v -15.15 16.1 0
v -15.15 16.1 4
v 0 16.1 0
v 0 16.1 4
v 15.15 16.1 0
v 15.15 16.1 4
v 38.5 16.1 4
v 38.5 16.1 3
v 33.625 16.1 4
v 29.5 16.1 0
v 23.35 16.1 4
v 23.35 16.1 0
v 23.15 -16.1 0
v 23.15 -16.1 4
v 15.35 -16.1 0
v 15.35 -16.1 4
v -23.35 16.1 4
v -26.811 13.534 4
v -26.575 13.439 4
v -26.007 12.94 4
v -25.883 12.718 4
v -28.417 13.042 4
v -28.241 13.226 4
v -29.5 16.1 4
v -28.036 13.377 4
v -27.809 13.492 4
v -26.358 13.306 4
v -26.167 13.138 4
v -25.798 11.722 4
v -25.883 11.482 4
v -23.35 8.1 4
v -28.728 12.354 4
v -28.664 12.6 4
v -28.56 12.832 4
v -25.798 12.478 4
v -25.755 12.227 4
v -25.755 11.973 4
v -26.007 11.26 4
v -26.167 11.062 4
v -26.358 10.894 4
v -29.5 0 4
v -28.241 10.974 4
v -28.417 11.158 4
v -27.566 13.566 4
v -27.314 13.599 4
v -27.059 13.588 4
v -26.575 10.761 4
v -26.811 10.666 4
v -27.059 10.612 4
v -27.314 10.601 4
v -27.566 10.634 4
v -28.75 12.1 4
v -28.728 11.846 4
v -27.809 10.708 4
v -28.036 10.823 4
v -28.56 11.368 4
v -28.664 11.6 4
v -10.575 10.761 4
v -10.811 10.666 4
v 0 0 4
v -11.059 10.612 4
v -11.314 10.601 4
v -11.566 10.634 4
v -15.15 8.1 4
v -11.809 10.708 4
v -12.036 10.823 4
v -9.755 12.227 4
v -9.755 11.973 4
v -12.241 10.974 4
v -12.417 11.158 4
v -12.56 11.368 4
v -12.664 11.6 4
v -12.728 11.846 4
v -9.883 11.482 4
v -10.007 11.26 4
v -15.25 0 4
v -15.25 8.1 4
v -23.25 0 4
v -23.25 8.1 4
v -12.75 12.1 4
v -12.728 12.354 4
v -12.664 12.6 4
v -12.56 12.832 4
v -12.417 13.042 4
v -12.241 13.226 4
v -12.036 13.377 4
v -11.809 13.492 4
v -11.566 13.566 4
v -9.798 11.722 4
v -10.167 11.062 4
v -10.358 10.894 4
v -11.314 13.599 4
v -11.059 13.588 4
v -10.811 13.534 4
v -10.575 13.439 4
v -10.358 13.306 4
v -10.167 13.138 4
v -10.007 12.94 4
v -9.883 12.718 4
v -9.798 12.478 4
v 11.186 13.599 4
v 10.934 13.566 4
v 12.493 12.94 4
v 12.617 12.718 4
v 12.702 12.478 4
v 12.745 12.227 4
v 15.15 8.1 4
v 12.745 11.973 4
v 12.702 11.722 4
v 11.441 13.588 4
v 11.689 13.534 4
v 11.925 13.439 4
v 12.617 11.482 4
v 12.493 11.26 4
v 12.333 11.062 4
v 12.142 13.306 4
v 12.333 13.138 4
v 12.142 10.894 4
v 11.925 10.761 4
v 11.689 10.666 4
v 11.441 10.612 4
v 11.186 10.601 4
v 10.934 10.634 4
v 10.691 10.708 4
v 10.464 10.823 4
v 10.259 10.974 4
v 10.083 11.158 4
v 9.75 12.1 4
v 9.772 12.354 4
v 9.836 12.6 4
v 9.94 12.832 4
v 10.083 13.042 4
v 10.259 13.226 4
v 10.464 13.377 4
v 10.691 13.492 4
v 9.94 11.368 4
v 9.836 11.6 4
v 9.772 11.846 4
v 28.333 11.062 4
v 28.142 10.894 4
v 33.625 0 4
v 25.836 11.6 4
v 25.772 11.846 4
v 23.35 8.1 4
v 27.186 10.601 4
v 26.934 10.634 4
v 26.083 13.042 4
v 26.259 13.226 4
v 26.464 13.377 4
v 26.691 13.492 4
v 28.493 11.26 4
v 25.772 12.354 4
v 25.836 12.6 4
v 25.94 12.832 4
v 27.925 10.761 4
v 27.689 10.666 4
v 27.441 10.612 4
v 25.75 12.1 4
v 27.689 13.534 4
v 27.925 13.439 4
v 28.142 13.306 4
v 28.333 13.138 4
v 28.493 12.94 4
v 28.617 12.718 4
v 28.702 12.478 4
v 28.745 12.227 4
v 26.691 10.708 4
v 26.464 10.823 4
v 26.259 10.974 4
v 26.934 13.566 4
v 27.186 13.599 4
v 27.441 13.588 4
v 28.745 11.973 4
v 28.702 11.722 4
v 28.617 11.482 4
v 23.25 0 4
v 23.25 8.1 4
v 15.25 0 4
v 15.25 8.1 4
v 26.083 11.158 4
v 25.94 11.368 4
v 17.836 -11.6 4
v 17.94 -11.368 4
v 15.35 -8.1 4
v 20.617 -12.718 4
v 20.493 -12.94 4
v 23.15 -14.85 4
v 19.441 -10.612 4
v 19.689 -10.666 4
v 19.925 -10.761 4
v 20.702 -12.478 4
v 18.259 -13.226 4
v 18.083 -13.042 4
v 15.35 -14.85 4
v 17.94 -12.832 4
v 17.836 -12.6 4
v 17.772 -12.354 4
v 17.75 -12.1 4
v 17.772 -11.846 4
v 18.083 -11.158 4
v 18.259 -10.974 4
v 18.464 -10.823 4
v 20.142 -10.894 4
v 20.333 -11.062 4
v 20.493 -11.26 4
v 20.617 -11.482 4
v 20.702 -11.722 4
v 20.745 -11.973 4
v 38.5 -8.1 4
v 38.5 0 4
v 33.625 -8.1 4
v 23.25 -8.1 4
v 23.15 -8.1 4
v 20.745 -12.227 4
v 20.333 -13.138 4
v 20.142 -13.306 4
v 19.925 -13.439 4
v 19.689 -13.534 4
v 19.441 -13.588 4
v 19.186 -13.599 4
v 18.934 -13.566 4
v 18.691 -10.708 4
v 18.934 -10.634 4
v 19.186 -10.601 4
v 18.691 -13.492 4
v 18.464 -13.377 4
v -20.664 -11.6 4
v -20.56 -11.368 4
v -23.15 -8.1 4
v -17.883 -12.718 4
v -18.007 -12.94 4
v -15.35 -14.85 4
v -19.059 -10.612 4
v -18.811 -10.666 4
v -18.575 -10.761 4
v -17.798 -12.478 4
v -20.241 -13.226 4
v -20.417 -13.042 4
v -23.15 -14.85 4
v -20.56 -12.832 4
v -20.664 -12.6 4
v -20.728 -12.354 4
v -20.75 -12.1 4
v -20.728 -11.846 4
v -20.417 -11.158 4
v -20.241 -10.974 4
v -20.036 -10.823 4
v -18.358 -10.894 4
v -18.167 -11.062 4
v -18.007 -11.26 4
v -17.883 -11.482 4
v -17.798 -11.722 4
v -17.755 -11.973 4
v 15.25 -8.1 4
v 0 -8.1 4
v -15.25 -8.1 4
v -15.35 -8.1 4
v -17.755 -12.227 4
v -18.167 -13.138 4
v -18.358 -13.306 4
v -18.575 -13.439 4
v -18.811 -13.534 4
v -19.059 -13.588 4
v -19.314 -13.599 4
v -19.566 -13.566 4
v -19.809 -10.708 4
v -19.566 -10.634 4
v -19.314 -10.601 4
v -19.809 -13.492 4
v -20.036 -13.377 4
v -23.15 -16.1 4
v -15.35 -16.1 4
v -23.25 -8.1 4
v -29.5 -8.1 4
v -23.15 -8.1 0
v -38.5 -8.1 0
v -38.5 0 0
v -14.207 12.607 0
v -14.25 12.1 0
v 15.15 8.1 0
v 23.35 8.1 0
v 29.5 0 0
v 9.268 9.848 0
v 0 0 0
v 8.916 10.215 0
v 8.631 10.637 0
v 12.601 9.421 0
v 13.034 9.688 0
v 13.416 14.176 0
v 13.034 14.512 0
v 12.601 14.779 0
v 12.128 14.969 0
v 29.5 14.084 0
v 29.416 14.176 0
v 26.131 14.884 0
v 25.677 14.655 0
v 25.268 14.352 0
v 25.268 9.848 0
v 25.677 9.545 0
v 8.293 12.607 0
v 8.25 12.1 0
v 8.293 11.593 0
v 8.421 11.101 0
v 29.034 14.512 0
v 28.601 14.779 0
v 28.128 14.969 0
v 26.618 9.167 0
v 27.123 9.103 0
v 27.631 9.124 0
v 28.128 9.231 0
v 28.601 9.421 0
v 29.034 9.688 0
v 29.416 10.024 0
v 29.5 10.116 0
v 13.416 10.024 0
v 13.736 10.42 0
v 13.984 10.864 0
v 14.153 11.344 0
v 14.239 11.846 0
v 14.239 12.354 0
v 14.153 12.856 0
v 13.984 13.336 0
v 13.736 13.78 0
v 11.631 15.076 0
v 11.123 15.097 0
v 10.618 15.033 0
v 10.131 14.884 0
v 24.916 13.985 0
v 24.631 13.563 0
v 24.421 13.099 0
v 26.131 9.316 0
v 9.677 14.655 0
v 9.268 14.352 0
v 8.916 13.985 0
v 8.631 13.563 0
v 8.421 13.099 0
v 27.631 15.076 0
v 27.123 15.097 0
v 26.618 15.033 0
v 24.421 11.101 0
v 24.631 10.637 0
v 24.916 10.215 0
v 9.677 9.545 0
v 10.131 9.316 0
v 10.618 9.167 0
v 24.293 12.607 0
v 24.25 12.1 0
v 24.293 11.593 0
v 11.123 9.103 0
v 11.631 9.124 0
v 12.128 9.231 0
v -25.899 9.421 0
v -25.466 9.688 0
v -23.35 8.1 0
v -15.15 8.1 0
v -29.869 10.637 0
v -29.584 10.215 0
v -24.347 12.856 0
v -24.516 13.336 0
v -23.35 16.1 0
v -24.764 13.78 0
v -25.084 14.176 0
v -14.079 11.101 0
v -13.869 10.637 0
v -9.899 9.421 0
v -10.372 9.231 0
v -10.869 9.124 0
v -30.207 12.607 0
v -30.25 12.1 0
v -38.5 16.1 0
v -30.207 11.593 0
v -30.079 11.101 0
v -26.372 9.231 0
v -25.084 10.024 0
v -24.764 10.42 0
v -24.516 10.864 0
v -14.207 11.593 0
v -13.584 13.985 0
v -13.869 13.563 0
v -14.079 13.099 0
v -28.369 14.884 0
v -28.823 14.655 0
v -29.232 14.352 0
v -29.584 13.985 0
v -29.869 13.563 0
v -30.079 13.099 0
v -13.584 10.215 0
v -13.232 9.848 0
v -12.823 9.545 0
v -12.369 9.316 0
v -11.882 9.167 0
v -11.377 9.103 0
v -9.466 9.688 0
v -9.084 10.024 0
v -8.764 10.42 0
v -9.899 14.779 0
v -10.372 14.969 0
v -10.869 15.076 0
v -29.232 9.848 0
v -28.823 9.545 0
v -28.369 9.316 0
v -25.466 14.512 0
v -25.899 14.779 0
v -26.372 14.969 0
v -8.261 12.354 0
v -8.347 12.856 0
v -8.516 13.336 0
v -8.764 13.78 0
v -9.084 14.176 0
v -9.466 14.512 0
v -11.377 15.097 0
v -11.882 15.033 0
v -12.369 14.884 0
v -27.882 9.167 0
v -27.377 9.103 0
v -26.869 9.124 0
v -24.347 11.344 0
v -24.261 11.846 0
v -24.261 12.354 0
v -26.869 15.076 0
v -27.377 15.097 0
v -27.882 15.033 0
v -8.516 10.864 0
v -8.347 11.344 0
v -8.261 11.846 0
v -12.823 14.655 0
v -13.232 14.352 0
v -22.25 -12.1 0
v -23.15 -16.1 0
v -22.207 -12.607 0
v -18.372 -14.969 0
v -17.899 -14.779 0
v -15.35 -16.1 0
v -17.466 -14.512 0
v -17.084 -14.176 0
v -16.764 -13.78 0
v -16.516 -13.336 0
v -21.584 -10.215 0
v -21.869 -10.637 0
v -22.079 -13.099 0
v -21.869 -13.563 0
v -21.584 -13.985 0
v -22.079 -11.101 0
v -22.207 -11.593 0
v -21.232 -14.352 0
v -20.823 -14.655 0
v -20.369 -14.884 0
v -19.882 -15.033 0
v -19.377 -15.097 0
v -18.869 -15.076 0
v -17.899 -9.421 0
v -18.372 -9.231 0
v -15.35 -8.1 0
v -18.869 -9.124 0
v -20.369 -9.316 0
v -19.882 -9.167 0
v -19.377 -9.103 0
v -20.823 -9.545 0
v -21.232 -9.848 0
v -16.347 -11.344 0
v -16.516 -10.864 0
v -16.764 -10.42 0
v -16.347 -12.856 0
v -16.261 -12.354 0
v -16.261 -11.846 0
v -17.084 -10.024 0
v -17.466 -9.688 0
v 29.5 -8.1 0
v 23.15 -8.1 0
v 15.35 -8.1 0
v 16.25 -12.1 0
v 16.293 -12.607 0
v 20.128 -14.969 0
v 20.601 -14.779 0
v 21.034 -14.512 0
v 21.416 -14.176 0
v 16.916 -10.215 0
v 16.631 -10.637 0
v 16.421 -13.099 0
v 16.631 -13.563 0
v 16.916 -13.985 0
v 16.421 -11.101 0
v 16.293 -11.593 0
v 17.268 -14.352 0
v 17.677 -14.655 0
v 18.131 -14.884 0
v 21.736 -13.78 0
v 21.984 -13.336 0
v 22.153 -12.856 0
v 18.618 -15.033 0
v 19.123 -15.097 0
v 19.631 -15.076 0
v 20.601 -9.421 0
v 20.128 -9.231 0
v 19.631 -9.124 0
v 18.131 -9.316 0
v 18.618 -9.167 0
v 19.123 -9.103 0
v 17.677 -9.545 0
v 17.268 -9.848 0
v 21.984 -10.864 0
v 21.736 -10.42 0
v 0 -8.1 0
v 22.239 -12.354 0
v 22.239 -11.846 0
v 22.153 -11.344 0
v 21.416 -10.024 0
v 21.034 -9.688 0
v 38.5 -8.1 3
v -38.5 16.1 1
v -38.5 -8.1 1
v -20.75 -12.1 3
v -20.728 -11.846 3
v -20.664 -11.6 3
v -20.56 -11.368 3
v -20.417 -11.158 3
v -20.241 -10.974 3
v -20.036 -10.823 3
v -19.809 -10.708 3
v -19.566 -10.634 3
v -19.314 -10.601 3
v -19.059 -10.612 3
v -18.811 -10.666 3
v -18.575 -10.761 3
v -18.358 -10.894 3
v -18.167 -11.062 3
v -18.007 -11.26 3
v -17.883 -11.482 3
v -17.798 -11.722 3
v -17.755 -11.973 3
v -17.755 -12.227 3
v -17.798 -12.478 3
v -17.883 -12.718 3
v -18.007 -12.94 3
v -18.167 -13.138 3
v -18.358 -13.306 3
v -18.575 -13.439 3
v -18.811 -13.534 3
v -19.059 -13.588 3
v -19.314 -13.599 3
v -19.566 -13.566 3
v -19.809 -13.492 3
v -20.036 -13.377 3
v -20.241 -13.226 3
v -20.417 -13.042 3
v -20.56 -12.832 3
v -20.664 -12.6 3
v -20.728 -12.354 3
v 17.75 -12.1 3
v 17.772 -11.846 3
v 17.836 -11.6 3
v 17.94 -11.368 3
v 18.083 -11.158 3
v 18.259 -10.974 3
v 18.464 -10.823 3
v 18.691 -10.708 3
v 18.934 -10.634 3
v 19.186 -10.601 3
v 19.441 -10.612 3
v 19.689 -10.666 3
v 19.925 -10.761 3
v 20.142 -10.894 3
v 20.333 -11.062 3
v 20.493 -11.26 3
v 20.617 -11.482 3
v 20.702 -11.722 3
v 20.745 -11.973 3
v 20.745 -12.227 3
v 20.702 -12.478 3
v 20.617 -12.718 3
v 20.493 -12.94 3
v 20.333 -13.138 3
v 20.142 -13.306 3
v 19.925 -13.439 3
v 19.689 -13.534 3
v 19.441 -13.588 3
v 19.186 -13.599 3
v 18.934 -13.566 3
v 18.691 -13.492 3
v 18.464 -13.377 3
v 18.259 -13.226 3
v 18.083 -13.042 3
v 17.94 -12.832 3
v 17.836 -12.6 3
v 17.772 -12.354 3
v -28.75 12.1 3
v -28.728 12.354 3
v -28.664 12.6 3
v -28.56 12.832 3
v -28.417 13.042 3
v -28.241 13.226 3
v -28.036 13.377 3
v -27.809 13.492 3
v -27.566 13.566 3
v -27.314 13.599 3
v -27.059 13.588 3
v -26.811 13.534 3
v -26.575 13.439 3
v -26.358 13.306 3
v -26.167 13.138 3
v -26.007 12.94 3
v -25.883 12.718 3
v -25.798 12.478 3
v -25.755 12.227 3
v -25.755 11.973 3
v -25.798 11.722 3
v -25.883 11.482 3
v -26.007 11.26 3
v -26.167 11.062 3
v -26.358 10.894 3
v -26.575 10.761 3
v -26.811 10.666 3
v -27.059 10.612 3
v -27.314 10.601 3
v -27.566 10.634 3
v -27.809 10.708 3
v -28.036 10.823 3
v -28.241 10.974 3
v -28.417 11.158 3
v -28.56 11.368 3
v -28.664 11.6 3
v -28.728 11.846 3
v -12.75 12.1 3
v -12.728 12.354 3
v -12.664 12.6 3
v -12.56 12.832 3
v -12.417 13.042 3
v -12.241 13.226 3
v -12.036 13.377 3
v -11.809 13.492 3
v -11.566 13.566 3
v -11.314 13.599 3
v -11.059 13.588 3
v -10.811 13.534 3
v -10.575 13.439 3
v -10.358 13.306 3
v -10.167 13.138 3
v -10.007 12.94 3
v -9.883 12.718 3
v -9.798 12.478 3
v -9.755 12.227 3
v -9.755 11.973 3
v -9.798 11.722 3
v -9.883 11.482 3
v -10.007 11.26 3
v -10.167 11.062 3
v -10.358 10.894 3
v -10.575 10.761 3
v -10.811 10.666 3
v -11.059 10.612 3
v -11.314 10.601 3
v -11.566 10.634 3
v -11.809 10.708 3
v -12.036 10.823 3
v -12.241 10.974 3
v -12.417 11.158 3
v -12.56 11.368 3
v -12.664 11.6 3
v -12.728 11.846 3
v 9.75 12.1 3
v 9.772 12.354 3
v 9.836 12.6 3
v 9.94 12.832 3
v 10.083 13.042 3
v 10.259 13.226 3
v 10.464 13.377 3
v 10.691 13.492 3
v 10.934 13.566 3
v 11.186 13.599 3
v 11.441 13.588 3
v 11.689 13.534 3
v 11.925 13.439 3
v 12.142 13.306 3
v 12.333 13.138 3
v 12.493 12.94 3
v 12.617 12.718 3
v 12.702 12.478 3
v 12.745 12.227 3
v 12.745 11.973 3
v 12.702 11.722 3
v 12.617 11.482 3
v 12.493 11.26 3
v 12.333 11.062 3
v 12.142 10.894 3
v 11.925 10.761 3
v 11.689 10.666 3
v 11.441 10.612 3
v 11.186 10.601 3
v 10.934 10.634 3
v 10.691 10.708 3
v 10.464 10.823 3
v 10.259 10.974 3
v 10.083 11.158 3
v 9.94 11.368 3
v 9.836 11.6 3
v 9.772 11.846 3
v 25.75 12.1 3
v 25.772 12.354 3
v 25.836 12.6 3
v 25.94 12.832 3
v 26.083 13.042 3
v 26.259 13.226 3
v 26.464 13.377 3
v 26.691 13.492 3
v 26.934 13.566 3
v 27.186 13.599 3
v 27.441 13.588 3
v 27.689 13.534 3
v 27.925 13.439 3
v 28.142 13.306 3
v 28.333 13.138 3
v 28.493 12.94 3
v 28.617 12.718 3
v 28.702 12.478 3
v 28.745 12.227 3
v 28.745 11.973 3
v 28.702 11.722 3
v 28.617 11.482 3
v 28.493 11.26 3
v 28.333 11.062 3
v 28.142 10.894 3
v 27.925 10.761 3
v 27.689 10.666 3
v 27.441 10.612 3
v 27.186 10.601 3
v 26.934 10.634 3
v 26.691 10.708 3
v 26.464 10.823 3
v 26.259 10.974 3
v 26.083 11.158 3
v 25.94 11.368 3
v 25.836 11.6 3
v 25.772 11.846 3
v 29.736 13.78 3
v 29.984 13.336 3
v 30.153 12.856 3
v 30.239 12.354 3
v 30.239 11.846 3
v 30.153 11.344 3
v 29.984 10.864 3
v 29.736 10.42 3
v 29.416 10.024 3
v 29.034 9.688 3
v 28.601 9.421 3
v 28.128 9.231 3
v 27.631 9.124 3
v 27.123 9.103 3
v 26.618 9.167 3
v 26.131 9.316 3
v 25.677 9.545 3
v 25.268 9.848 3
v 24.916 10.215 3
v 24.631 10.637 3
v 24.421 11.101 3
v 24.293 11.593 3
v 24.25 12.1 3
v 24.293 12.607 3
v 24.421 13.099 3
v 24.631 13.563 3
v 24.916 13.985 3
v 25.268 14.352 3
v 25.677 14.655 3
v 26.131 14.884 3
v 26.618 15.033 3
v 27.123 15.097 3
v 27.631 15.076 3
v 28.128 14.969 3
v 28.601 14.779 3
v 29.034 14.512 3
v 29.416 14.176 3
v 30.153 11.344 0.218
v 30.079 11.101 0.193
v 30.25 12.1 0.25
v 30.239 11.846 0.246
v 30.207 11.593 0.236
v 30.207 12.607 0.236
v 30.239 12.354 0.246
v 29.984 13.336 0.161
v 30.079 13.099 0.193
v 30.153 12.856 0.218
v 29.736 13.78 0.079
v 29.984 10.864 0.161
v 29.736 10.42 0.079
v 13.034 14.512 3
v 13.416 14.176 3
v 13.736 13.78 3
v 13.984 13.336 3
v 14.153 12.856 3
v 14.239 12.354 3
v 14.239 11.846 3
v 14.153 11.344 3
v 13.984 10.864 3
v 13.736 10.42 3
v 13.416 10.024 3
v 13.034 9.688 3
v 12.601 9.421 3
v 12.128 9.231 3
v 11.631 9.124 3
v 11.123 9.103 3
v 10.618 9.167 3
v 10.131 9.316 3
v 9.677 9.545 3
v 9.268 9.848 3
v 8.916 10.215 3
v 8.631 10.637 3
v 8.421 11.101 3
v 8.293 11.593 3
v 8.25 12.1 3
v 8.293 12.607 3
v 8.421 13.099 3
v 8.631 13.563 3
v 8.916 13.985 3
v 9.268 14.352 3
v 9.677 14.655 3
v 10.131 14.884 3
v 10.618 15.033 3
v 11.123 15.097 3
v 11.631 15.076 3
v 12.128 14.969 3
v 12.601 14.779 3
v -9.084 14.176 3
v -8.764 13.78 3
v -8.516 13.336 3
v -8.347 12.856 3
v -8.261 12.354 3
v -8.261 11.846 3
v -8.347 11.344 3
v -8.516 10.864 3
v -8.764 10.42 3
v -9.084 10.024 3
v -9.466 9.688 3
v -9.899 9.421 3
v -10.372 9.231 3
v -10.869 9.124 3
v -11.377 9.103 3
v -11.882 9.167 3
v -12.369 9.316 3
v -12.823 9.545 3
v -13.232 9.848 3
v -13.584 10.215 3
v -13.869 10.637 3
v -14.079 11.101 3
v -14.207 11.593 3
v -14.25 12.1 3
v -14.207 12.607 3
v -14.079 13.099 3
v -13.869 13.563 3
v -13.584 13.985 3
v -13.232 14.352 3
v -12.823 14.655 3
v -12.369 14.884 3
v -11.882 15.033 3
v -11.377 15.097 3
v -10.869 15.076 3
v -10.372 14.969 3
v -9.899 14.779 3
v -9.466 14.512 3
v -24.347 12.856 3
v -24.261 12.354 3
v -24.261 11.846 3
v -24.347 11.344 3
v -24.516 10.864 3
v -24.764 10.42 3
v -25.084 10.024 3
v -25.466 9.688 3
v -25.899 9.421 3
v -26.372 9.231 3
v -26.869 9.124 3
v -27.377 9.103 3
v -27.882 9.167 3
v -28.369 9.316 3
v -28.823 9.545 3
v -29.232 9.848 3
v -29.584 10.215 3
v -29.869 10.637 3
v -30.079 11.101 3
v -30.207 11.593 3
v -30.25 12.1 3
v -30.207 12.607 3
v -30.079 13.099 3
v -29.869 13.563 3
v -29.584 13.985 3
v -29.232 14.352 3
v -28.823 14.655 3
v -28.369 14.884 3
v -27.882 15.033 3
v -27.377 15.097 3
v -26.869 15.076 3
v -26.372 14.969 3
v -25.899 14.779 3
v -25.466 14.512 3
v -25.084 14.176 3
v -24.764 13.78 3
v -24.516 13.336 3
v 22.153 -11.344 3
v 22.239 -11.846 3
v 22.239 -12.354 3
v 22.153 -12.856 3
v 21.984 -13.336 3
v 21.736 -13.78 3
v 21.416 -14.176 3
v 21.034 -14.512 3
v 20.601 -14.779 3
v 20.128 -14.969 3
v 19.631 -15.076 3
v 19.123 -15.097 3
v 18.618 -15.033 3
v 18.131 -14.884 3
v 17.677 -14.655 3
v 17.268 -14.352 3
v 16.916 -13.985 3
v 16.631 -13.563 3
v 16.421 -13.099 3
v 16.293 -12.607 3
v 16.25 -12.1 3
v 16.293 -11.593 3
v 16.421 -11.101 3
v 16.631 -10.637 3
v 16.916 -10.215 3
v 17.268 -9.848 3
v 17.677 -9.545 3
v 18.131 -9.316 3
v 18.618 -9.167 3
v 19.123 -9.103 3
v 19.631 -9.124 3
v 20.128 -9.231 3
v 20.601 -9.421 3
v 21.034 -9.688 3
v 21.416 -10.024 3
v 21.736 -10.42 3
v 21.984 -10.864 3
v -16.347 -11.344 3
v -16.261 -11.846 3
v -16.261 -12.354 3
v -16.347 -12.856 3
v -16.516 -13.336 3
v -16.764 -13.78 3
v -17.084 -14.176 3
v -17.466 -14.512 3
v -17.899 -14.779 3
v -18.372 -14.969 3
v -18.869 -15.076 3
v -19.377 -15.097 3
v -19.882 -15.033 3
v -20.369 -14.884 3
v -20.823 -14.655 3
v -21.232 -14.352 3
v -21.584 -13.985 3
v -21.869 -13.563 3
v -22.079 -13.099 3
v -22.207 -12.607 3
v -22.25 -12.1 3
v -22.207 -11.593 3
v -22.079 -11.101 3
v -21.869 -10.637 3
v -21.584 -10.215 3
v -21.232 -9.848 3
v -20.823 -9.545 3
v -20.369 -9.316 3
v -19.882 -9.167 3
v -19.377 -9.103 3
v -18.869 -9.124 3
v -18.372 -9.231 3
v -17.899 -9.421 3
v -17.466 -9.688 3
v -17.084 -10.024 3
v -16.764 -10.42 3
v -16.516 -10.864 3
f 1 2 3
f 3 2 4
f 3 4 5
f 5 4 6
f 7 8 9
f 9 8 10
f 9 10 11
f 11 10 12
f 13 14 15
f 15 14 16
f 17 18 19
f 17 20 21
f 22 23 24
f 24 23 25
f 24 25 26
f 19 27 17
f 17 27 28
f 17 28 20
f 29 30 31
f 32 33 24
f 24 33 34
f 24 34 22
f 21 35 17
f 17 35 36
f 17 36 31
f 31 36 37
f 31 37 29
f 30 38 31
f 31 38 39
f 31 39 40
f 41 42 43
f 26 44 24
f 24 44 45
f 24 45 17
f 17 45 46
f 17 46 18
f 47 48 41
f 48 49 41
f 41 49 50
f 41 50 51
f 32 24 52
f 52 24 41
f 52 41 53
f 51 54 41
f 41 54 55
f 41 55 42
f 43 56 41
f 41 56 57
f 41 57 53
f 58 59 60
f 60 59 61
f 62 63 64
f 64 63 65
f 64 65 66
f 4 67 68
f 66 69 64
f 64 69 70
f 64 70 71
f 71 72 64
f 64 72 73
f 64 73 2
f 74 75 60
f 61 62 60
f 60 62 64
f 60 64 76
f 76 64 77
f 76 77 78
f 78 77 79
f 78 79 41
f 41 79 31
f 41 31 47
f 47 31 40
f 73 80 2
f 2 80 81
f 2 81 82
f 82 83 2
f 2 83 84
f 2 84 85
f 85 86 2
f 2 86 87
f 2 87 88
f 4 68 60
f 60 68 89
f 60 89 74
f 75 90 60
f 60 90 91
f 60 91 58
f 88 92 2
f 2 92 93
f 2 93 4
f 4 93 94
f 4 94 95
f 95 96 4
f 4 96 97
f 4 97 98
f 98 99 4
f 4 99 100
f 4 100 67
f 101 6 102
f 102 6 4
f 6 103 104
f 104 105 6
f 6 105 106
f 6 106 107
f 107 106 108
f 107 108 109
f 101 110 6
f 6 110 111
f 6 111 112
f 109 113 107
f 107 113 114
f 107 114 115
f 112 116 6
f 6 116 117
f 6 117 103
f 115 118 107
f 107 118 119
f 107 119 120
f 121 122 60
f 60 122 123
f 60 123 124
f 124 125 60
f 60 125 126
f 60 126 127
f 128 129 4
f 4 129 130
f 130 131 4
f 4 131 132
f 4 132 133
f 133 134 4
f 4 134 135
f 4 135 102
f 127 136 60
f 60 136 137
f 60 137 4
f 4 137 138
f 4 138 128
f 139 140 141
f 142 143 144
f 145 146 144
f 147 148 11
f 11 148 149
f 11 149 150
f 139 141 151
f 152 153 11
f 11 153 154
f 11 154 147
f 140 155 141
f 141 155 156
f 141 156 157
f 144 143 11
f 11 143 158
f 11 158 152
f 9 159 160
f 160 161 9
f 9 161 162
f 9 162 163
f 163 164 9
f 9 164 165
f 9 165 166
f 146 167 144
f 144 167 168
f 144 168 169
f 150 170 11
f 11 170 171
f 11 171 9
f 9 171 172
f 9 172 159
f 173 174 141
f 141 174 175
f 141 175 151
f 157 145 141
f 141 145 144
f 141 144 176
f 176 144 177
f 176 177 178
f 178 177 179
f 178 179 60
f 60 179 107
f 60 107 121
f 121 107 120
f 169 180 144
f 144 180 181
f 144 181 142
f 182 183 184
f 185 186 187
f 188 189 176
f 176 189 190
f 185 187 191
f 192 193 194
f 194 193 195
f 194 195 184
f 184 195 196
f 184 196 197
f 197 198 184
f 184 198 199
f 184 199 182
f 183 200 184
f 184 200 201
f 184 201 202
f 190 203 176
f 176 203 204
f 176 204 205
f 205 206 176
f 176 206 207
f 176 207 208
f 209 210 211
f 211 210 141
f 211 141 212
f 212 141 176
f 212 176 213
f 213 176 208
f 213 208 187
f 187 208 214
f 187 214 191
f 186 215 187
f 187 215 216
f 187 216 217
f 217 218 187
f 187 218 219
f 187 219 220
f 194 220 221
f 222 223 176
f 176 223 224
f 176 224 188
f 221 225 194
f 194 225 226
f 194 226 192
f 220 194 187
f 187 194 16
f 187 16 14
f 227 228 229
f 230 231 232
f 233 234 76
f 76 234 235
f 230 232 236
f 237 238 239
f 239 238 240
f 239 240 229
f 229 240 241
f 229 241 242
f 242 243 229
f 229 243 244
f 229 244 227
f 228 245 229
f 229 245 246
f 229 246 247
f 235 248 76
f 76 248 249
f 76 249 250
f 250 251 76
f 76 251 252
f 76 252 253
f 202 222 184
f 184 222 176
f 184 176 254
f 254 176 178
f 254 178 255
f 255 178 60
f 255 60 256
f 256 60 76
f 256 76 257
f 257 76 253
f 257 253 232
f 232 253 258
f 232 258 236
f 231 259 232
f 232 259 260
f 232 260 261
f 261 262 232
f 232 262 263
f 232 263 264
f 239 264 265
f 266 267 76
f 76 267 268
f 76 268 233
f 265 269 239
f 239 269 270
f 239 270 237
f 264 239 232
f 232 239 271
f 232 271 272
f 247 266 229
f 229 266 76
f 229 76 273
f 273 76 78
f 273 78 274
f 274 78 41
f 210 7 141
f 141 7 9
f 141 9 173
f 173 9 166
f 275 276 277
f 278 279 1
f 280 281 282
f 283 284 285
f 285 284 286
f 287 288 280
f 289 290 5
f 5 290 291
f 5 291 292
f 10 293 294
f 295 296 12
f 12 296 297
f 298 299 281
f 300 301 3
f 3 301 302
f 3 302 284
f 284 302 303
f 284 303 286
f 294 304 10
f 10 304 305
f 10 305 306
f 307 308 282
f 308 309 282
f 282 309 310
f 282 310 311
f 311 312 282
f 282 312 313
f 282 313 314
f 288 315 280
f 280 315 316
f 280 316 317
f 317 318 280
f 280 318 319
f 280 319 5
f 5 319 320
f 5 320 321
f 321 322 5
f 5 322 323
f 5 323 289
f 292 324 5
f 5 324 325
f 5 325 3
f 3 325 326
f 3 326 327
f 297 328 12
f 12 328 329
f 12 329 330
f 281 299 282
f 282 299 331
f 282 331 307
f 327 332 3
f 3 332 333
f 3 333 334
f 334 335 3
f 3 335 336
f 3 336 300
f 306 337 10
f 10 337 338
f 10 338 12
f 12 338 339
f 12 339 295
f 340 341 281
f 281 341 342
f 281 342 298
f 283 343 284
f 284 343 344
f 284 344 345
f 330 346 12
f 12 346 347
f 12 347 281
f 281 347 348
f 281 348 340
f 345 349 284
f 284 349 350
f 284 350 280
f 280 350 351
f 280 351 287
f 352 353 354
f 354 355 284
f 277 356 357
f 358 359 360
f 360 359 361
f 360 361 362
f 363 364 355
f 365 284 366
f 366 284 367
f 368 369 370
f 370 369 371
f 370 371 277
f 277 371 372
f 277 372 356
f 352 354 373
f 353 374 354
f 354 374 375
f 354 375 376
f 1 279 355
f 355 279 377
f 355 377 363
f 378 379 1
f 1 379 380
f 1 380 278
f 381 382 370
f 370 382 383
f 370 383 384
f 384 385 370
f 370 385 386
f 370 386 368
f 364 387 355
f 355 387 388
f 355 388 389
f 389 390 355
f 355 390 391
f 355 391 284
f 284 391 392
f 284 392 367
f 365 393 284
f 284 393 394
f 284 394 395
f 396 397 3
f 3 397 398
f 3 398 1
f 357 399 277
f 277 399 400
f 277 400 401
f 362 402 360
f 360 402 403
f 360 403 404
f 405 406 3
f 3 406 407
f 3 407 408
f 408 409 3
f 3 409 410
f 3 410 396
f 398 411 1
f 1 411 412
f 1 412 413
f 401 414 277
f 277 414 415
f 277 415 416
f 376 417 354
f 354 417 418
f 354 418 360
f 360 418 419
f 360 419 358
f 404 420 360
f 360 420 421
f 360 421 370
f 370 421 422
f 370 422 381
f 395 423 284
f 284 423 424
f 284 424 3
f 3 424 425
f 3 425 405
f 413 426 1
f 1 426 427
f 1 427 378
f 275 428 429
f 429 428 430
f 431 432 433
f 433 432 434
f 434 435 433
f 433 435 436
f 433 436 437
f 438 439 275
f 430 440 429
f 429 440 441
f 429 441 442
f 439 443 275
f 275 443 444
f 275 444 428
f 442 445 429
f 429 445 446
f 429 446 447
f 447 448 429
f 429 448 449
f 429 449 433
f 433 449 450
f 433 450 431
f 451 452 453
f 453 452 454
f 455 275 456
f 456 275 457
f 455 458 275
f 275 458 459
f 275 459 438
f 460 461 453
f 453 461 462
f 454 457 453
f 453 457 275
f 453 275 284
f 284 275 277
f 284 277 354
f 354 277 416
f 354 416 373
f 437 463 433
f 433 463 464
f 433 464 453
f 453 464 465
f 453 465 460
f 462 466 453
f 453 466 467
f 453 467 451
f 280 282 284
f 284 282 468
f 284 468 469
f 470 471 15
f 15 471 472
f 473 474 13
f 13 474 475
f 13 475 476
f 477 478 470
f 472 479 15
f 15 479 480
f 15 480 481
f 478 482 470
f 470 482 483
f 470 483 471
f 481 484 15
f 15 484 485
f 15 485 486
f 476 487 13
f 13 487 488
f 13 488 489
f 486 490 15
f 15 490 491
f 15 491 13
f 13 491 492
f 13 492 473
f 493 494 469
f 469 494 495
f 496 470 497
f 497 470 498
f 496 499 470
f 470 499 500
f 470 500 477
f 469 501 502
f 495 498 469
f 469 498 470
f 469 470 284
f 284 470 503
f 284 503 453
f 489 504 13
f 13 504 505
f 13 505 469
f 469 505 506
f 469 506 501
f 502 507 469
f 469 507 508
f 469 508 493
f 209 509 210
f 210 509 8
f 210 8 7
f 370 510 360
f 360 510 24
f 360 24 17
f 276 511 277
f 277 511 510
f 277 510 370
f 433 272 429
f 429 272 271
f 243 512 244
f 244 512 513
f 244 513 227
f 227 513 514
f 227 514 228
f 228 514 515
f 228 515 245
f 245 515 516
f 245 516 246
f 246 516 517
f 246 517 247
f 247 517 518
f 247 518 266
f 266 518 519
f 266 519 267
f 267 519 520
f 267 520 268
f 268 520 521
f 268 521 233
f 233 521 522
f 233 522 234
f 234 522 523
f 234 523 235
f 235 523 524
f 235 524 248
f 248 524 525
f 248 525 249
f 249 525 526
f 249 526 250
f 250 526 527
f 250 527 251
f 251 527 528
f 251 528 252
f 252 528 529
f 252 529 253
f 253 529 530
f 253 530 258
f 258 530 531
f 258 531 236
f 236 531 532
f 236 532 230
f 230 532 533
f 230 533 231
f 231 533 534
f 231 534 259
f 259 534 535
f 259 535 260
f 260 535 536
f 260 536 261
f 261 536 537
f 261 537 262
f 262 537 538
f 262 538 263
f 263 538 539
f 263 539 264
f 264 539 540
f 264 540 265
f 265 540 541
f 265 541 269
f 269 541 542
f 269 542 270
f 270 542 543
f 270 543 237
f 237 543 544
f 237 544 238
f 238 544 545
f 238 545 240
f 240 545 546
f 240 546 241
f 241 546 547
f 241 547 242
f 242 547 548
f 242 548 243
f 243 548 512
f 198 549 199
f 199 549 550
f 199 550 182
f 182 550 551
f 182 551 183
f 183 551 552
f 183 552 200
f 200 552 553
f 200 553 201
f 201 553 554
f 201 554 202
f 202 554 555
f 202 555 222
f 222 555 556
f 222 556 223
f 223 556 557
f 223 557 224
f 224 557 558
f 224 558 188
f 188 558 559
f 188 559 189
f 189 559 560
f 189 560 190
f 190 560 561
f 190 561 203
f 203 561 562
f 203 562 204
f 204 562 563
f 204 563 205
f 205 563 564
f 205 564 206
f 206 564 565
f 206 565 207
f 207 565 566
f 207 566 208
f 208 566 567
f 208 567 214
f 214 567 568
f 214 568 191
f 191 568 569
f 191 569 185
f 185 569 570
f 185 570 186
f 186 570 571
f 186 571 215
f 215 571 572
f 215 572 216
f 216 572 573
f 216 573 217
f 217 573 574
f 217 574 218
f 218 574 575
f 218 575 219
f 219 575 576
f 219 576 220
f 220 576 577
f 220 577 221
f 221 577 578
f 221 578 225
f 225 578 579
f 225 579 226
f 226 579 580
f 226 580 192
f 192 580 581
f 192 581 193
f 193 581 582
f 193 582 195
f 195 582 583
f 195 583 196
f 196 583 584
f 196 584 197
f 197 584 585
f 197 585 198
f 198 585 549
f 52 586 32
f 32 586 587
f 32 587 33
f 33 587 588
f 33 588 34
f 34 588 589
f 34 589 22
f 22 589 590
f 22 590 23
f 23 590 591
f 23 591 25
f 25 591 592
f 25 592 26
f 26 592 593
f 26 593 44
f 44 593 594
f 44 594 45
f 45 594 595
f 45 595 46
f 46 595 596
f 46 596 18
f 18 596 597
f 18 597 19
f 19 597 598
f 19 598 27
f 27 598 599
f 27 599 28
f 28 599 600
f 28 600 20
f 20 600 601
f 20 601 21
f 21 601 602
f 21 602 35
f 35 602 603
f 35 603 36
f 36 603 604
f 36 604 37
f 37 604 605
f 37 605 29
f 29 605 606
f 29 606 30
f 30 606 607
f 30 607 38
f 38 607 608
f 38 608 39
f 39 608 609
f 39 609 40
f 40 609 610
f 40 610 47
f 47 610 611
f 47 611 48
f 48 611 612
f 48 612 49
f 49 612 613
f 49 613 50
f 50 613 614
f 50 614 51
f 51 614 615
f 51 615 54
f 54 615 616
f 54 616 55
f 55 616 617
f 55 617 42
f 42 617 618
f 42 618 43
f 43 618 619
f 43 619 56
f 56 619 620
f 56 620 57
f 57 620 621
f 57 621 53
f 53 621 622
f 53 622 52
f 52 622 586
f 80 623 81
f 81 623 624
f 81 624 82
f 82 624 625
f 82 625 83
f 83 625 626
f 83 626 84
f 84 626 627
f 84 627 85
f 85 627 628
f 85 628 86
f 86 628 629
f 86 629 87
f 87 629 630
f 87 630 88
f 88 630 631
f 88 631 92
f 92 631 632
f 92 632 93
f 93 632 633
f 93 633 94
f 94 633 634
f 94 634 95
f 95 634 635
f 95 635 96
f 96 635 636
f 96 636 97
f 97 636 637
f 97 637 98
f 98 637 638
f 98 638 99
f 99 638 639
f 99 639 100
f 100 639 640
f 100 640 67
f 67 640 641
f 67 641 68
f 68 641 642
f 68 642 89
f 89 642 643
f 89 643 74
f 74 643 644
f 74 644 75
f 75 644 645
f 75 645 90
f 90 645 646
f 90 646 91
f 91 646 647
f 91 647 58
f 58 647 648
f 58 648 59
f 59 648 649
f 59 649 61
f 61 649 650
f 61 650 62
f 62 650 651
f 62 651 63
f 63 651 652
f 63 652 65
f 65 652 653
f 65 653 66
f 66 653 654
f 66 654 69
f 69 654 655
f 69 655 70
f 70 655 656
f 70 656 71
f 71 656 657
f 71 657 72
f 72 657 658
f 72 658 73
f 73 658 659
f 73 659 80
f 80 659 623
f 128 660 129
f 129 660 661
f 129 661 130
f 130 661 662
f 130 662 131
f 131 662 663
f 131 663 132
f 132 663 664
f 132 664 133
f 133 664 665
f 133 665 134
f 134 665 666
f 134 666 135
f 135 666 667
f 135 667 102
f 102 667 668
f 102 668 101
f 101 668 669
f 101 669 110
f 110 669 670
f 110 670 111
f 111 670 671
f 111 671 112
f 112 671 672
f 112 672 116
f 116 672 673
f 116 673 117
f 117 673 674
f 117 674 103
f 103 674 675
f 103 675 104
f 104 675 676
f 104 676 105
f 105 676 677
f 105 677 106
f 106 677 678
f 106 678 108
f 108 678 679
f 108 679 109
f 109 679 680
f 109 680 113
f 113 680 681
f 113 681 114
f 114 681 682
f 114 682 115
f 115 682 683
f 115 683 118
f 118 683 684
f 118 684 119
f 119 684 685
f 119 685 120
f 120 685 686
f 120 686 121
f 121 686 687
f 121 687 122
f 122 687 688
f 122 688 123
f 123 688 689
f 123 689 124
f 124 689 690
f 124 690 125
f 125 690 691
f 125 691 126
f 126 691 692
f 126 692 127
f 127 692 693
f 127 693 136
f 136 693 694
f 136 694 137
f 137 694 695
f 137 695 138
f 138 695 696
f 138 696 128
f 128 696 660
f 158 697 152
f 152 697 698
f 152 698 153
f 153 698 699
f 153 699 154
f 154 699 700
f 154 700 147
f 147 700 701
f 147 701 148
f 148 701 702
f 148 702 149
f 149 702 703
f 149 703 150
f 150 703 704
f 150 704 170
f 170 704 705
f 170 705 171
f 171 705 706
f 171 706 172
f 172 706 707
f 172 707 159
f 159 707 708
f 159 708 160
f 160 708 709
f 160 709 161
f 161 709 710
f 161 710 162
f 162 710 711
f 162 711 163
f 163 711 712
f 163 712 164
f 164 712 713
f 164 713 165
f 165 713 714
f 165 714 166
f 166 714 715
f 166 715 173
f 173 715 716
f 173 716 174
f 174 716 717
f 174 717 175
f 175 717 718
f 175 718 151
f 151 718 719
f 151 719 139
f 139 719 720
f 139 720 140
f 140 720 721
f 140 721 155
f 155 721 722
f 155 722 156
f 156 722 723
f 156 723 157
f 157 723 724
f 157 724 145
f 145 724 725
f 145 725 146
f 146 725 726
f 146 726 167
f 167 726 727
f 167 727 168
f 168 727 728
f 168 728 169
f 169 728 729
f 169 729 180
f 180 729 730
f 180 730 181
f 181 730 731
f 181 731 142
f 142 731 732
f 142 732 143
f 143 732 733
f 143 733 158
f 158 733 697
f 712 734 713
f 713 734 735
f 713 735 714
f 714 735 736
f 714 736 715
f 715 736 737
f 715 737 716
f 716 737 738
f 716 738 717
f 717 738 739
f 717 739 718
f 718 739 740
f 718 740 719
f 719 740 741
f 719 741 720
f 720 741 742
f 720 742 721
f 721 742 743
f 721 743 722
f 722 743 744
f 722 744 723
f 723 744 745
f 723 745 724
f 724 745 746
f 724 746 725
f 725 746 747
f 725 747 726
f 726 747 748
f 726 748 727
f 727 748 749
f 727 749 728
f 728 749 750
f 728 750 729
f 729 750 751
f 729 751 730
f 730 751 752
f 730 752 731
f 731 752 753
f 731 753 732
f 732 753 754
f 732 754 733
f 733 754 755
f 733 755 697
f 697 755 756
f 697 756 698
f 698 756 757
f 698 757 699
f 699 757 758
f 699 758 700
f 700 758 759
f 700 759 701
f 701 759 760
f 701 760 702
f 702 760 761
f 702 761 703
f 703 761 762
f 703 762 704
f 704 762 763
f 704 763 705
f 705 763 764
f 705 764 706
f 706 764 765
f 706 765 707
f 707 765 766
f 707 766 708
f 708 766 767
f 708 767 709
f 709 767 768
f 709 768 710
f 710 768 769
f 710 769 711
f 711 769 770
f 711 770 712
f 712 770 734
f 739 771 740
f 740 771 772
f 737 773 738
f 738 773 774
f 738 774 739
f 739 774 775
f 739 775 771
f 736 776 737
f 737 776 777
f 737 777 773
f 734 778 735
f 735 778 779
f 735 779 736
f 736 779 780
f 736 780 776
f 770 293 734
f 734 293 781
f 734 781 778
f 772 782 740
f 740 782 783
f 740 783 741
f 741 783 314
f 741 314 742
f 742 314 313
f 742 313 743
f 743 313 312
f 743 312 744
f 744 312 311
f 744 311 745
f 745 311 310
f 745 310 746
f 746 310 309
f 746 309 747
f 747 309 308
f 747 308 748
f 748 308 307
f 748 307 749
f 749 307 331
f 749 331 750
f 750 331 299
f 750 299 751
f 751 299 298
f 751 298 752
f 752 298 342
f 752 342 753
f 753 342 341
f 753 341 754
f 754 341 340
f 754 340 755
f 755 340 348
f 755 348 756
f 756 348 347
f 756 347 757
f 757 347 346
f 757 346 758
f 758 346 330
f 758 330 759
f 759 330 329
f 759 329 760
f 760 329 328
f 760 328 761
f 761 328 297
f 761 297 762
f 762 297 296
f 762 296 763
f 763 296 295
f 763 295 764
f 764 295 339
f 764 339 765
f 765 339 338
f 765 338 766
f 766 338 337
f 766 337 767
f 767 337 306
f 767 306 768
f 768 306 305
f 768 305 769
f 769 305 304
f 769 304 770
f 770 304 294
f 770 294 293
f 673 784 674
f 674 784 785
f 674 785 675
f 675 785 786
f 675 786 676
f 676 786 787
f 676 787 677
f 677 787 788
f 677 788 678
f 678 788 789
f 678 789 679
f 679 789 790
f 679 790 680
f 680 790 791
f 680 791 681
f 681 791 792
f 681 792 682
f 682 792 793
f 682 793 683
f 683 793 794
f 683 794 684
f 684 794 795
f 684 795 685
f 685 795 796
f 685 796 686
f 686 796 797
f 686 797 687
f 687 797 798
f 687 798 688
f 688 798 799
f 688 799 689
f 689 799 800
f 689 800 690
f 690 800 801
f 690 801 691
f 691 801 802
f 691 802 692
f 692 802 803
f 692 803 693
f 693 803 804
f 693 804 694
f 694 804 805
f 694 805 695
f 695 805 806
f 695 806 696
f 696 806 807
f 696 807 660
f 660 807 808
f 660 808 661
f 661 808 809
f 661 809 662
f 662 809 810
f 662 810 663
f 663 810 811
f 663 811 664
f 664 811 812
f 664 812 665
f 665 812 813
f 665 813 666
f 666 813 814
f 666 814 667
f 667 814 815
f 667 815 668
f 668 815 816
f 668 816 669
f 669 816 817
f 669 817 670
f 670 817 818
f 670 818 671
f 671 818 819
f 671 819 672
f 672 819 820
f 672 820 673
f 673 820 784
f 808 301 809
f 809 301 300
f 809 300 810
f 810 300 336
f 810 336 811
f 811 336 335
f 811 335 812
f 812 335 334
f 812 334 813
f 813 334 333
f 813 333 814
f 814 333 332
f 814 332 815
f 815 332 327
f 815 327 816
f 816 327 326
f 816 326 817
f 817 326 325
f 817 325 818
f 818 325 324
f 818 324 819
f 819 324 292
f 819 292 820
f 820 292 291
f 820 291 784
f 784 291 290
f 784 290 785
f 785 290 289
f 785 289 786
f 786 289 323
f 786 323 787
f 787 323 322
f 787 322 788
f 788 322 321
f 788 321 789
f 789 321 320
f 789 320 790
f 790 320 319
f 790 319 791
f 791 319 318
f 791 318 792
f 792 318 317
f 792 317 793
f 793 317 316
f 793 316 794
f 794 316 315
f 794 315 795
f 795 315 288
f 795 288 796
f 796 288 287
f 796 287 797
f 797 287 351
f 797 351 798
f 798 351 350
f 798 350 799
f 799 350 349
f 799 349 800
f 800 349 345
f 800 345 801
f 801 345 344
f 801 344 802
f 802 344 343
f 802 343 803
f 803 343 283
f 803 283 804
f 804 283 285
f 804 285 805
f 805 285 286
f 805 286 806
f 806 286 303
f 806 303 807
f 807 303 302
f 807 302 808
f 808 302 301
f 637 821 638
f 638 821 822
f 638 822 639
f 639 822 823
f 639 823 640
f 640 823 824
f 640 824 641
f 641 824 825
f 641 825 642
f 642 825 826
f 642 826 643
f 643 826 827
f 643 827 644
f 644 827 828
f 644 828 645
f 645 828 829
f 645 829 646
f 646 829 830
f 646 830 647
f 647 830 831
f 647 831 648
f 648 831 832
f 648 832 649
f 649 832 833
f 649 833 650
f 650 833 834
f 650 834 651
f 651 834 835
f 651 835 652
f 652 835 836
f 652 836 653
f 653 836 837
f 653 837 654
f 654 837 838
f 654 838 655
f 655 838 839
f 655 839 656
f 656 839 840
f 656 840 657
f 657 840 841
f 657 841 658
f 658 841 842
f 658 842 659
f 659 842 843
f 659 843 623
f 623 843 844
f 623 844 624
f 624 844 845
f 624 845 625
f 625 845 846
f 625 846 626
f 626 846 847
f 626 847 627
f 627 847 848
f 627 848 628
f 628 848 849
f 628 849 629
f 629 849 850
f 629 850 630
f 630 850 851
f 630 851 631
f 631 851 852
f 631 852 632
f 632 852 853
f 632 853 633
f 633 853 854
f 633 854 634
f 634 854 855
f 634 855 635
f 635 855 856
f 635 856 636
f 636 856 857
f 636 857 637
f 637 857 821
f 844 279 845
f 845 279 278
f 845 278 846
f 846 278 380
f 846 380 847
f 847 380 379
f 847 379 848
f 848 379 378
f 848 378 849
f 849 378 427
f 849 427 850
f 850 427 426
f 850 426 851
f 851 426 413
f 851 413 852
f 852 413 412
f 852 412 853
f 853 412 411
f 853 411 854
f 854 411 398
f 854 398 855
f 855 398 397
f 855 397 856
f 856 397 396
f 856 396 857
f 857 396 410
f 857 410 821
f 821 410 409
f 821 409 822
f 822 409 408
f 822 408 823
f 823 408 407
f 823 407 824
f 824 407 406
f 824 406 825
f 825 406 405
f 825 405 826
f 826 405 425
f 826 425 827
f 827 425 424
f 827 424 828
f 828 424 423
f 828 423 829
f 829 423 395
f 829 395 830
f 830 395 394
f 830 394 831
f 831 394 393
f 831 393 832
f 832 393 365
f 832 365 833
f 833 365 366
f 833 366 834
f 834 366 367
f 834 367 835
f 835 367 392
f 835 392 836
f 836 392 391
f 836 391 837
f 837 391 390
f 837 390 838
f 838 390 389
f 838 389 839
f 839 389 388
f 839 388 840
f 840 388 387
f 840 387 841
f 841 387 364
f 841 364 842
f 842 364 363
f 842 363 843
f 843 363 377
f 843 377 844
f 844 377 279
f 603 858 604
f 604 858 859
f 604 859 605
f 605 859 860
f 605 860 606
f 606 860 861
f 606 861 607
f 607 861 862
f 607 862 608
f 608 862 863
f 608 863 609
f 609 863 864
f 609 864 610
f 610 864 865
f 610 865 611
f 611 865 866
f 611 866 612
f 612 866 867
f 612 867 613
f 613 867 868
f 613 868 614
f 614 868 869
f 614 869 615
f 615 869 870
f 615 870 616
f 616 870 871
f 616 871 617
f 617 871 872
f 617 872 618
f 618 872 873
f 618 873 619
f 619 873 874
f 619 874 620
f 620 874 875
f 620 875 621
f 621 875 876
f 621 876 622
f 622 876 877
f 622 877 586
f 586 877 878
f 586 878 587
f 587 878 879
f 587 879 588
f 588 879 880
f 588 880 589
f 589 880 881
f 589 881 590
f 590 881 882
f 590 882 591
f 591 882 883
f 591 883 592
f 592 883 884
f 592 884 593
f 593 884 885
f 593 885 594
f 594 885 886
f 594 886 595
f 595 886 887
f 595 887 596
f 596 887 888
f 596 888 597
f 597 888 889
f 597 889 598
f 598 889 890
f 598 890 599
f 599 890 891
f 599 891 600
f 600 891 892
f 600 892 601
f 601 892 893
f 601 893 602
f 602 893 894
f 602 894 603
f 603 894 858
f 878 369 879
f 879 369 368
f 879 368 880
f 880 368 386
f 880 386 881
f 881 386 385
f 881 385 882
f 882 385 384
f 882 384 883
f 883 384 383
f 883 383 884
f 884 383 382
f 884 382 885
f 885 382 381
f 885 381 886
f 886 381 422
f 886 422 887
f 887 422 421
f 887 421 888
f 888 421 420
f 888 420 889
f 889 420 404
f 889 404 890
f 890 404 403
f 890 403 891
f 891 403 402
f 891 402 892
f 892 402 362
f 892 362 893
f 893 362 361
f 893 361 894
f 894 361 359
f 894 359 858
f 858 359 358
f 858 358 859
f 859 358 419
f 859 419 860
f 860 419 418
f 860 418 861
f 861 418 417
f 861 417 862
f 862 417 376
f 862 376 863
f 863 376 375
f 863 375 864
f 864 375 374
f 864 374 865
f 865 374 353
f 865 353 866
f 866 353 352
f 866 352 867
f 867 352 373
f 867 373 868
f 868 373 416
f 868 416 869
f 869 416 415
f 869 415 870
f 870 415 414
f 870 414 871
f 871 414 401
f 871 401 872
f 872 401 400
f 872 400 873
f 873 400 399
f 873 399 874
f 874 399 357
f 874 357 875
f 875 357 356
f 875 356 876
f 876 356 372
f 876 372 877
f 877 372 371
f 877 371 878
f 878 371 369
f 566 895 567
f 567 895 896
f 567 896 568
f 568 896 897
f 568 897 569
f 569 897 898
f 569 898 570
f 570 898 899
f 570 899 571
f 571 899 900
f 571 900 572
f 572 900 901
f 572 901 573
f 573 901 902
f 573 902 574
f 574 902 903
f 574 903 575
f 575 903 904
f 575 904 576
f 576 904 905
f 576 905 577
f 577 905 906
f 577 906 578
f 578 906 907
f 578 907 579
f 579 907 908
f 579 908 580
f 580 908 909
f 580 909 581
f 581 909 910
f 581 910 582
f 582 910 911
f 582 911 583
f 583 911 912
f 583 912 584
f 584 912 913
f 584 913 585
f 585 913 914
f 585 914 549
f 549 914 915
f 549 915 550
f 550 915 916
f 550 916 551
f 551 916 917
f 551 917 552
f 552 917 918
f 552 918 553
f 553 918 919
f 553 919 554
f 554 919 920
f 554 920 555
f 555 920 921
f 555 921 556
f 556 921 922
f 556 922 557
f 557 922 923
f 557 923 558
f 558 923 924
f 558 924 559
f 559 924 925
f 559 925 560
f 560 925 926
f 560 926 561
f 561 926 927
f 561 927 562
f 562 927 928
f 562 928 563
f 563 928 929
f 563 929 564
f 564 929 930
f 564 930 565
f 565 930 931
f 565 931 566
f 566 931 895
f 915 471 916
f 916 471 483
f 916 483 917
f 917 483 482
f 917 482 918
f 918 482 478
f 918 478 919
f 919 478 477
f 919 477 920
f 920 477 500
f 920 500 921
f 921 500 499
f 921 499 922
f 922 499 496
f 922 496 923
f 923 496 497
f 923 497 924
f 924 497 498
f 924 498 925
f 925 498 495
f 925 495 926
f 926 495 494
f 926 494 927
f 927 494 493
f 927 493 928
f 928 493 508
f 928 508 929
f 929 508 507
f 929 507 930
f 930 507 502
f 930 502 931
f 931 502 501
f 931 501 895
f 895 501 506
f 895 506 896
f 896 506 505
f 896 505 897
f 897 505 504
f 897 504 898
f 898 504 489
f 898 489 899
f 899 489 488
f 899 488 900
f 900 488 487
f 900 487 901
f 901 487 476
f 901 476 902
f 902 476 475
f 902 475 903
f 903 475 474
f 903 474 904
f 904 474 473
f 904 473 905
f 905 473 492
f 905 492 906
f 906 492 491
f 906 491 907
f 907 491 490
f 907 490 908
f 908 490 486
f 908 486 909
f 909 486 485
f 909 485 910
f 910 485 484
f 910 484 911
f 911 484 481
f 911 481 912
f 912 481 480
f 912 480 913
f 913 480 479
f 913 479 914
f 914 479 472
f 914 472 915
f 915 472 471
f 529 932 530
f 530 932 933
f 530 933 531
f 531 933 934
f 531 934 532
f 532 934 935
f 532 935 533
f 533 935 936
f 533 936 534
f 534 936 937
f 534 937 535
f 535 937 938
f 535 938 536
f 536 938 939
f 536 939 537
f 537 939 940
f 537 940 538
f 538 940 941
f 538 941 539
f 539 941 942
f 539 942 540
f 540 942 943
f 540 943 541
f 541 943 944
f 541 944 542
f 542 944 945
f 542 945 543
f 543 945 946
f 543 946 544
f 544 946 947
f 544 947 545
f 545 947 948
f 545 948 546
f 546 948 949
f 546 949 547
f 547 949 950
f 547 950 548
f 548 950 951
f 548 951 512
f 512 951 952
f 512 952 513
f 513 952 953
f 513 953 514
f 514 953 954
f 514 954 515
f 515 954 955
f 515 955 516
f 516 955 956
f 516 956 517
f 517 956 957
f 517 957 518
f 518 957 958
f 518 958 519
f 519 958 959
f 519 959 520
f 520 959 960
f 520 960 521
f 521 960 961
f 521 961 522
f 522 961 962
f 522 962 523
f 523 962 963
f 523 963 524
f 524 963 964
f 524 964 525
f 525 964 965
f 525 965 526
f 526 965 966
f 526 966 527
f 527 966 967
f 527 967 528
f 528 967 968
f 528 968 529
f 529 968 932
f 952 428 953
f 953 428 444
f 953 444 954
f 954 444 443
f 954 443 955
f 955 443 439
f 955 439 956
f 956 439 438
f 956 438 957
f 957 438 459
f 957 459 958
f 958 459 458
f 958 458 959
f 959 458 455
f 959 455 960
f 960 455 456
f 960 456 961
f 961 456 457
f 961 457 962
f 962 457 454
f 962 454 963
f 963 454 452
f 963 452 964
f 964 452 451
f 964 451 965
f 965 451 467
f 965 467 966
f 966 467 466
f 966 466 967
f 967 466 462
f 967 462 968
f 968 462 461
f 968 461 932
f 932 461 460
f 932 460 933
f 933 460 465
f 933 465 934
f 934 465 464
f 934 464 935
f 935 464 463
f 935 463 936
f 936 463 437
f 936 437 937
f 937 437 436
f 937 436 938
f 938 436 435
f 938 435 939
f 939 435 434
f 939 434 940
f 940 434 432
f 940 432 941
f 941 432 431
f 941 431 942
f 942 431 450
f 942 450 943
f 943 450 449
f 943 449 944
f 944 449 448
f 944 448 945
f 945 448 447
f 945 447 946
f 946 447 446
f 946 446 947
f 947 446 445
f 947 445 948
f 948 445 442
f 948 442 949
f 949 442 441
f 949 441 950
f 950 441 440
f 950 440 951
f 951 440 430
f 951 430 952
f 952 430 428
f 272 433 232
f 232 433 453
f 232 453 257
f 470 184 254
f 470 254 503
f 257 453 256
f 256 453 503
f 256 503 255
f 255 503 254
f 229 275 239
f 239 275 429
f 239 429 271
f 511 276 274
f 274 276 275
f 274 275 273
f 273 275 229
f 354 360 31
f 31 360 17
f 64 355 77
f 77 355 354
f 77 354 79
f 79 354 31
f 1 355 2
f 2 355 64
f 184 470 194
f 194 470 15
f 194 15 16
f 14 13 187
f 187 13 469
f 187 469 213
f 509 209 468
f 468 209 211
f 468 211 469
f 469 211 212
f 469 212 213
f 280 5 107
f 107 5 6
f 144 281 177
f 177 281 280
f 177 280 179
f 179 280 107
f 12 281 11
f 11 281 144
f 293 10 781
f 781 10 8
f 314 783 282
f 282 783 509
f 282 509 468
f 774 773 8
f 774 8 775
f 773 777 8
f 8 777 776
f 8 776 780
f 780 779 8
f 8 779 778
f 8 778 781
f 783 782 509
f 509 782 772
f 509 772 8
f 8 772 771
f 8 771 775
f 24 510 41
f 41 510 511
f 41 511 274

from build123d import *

# Parameters (mm, degrees)
SKETCH_1_W                       = 77
SKETCH_1_H                       = 32.2
EXTRUDE_1_DEPTH                  = 4
SKETCH_4_R                       = 1.5
CUT_EXTRUDE_3_DEPTH              = 42.92207056
SKETCH_9_R                       = 3
CUT_EXTRUDE_7_DEPTH              = 3
PATTERN_LINEAR_2_COUNT           = 2
PATTERN_LINEAR_2_PITCH           = 38.5
PATTERN_LINEAR_3_COUNT           = 2
PATTERN_LINEAR_3_PITCH           = 24.2
PATTERN_LINEAR_3_COPY_1_SKETCH_R = 1.5
PATTERN_LINEAR_3_COPY_1_DEPTH    = 42.92207056
PATTERN_LINEAR_3_COPY_2_SKETCH_R = 3
PATTERN_LINEAR_3_COPY_2_DEPTH    = 3
SKETCH_12_W                      = 8.2
SKETCH_12_H                      = 8
SKETCH_12_W_2                    = 15.35
CUT_EXTRUDE_13_DEPTH             = 10
PATTERN_LINEAR_5_COUNT           = 2
PATTERN_LINEAR_5_PITCH           = 38.5
CUT_EXTRUDE_14_DEPTH             = 51.349677258


with BuildPart() as part:
    # 草图1 → 凸台-拉伸1 (new body)
    with BuildSketch(Plane.XY):
        Rectangle(SKETCH_1_W, SKETCH_1_H)
    extrude(amount=EXTRUDE_1_DEPTH)

    # 草图4 → 切除-拉伸3 (cut, through all)
    with BuildSketch(Plane(origin=(0, 0, 0), x_dir=(-1, 0, 0), z_dir=(0, 0, -1))):
        with Locations((-27.25, 12.1)):
            Circle(SKETCH_4_R)
        with Locations((-19.25, 12.1)):
            Circle(SKETCH_4_R)
        with Locations((-11.25, 12.1)):
            Circle(SKETCH_4_R)
    cut_extrude_3 = extrude(amount=-CUT_EXTRUDE_3_DEPTH, mode=Mode.SUBTRACT)

    # 草图9 → 切除-拉伸7 (cut)
    with BuildSketch(Plane(origin=(0, 0, 0), x_dir=(-1, 0, 0), z_dir=(0, 0, -1))):
        with Locations((-27.25, 12.1)):
            Circle(SKETCH_9_R)
        with Locations((-19.25, 12.1)):
            Circle(SKETCH_9_R)
        with Locations((-11.25, 12.1)):
            Circle(SKETCH_9_R)
    cut_extrude_7 = extrude(amount=-CUT_EXTRUDE_7_DEPTH, mode=Mode.SUBTRACT)

    # 阵列(线性)2: 切除-拉伸3, 切除-拉伸7 ×2
    with Locations(*[(-i * PATTERN_LINEAR_2_PITCH, 0, 0) for i in range(1, PATTERN_LINEAR_2_COUNT)]):
        add(cut_extrude_3, mode=Mode.SUBTRACT)
        add(cut_extrude_7, mode=Mode.SUBTRACT)

    # 阵列(线性)3: 切除-拉伸3, 切除-拉伸7 ×2
    with Locations(*[(0, -i * PATTERN_LINEAR_3_PITCH, 0) for i in range(1, PATTERN_LINEAR_3_COUNT)]):
        add(cut_extrude_3, mode=Mode.SUBTRACT)
        add(cut_extrude_7, mode=Mode.SUBTRACT)

    # 阵列(线性)3 copy 1 sketch → 阵列(线性)3 copy 1 (cut, through all)
    with BuildSketch(Plane(origin=(-38.5, -24.2, 0), x_dir=(-1, 0, 0), z_dir=(0, 0, -1))):
        with Locations((-27.25, 12.1)):
            Circle(PATTERN_LINEAR_3_COPY_1_SKETCH_R)
        with Locations((-19.25, 12.1)):
            Circle(PATTERN_LINEAR_3_COPY_1_SKETCH_R)
        with Locations((-11.25, 12.1)):
            Circle(PATTERN_LINEAR_3_COPY_1_SKETCH_R)
    extrude(amount=-PATTERN_LINEAR_3_COPY_1_DEPTH, mode=Mode.SUBTRACT)

    # 阵列(线性)3 copy 2 sketch → 阵列(线性)3 copy 2 (cut)
    with BuildSketch(Plane(origin=(-38.5, -24.2, 0), x_dir=(-1, 0, 0), z_dir=(0, 0, -1))):
        with Locations((-27.25, 12.1)):
            Circle(PATTERN_LINEAR_3_COPY_2_SKETCH_R)
        with Locations((-19.25, 12.1)):
            Circle(PATTERN_LINEAR_3_COPY_2_SKETCH_R)
        with Locations((-11.25, 12.1)):
            Circle(PATTERN_LINEAR_3_COPY_2_SKETCH_R)
    extrude(amount=-PATTERN_LINEAR_3_COPY_2_DEPTH, mode=Mode.SUBTRACT)

    # 草图12 → 切除-拉伸13 (cut)
    with BuildSketch(Plane.XY):
        with Locations((-19.25, 12.1)):
            Rectangle(SKETCH_12_W, SKETCH_12_H)
        with Locations((-30.825, -12.1)):
            Rectangle(SKETCH_12_W_2, SKETCH_12_H)
        with Locations((-7.675, -12.1)):
            Rectangle(SKETCH_12_W_2, SKETCH_12_H)
    cut_extrude_13 = extrude(amount=CUT_EXTRUDE_13_DEPTH, mode=Mode.SUBTRACT)

    # 阵列(线性)5: 切除-拉伸13 ×2
    with Locations(*[(i * PATTERN_LINEAR_5_PITCH, 0, 0) for i in range(1, PATTERN_LINEAR_5_COUNT)]):
        add(cut_extrude_13, mode=Mode.SUBTRACT)

    # 草图13 → 切除-拉伸14 (cut, through all)
    with BuildSketch(Plane(origin=(0, 16.1, 0), x_dir=(1, 0, 0), z_dir=(0, 1, 0))):
        Polygon((29.5, 0), (38.5, 0), (38.5, -3), align=None)
        Polygon((-38.5, -1), (-38.5, -4), (-29.5, -4), align=None)
    extrude(amount=-CUT_EXTRUDE_14_DEPTH, mode=Mode.SUBTRACT)


solid = part.part
